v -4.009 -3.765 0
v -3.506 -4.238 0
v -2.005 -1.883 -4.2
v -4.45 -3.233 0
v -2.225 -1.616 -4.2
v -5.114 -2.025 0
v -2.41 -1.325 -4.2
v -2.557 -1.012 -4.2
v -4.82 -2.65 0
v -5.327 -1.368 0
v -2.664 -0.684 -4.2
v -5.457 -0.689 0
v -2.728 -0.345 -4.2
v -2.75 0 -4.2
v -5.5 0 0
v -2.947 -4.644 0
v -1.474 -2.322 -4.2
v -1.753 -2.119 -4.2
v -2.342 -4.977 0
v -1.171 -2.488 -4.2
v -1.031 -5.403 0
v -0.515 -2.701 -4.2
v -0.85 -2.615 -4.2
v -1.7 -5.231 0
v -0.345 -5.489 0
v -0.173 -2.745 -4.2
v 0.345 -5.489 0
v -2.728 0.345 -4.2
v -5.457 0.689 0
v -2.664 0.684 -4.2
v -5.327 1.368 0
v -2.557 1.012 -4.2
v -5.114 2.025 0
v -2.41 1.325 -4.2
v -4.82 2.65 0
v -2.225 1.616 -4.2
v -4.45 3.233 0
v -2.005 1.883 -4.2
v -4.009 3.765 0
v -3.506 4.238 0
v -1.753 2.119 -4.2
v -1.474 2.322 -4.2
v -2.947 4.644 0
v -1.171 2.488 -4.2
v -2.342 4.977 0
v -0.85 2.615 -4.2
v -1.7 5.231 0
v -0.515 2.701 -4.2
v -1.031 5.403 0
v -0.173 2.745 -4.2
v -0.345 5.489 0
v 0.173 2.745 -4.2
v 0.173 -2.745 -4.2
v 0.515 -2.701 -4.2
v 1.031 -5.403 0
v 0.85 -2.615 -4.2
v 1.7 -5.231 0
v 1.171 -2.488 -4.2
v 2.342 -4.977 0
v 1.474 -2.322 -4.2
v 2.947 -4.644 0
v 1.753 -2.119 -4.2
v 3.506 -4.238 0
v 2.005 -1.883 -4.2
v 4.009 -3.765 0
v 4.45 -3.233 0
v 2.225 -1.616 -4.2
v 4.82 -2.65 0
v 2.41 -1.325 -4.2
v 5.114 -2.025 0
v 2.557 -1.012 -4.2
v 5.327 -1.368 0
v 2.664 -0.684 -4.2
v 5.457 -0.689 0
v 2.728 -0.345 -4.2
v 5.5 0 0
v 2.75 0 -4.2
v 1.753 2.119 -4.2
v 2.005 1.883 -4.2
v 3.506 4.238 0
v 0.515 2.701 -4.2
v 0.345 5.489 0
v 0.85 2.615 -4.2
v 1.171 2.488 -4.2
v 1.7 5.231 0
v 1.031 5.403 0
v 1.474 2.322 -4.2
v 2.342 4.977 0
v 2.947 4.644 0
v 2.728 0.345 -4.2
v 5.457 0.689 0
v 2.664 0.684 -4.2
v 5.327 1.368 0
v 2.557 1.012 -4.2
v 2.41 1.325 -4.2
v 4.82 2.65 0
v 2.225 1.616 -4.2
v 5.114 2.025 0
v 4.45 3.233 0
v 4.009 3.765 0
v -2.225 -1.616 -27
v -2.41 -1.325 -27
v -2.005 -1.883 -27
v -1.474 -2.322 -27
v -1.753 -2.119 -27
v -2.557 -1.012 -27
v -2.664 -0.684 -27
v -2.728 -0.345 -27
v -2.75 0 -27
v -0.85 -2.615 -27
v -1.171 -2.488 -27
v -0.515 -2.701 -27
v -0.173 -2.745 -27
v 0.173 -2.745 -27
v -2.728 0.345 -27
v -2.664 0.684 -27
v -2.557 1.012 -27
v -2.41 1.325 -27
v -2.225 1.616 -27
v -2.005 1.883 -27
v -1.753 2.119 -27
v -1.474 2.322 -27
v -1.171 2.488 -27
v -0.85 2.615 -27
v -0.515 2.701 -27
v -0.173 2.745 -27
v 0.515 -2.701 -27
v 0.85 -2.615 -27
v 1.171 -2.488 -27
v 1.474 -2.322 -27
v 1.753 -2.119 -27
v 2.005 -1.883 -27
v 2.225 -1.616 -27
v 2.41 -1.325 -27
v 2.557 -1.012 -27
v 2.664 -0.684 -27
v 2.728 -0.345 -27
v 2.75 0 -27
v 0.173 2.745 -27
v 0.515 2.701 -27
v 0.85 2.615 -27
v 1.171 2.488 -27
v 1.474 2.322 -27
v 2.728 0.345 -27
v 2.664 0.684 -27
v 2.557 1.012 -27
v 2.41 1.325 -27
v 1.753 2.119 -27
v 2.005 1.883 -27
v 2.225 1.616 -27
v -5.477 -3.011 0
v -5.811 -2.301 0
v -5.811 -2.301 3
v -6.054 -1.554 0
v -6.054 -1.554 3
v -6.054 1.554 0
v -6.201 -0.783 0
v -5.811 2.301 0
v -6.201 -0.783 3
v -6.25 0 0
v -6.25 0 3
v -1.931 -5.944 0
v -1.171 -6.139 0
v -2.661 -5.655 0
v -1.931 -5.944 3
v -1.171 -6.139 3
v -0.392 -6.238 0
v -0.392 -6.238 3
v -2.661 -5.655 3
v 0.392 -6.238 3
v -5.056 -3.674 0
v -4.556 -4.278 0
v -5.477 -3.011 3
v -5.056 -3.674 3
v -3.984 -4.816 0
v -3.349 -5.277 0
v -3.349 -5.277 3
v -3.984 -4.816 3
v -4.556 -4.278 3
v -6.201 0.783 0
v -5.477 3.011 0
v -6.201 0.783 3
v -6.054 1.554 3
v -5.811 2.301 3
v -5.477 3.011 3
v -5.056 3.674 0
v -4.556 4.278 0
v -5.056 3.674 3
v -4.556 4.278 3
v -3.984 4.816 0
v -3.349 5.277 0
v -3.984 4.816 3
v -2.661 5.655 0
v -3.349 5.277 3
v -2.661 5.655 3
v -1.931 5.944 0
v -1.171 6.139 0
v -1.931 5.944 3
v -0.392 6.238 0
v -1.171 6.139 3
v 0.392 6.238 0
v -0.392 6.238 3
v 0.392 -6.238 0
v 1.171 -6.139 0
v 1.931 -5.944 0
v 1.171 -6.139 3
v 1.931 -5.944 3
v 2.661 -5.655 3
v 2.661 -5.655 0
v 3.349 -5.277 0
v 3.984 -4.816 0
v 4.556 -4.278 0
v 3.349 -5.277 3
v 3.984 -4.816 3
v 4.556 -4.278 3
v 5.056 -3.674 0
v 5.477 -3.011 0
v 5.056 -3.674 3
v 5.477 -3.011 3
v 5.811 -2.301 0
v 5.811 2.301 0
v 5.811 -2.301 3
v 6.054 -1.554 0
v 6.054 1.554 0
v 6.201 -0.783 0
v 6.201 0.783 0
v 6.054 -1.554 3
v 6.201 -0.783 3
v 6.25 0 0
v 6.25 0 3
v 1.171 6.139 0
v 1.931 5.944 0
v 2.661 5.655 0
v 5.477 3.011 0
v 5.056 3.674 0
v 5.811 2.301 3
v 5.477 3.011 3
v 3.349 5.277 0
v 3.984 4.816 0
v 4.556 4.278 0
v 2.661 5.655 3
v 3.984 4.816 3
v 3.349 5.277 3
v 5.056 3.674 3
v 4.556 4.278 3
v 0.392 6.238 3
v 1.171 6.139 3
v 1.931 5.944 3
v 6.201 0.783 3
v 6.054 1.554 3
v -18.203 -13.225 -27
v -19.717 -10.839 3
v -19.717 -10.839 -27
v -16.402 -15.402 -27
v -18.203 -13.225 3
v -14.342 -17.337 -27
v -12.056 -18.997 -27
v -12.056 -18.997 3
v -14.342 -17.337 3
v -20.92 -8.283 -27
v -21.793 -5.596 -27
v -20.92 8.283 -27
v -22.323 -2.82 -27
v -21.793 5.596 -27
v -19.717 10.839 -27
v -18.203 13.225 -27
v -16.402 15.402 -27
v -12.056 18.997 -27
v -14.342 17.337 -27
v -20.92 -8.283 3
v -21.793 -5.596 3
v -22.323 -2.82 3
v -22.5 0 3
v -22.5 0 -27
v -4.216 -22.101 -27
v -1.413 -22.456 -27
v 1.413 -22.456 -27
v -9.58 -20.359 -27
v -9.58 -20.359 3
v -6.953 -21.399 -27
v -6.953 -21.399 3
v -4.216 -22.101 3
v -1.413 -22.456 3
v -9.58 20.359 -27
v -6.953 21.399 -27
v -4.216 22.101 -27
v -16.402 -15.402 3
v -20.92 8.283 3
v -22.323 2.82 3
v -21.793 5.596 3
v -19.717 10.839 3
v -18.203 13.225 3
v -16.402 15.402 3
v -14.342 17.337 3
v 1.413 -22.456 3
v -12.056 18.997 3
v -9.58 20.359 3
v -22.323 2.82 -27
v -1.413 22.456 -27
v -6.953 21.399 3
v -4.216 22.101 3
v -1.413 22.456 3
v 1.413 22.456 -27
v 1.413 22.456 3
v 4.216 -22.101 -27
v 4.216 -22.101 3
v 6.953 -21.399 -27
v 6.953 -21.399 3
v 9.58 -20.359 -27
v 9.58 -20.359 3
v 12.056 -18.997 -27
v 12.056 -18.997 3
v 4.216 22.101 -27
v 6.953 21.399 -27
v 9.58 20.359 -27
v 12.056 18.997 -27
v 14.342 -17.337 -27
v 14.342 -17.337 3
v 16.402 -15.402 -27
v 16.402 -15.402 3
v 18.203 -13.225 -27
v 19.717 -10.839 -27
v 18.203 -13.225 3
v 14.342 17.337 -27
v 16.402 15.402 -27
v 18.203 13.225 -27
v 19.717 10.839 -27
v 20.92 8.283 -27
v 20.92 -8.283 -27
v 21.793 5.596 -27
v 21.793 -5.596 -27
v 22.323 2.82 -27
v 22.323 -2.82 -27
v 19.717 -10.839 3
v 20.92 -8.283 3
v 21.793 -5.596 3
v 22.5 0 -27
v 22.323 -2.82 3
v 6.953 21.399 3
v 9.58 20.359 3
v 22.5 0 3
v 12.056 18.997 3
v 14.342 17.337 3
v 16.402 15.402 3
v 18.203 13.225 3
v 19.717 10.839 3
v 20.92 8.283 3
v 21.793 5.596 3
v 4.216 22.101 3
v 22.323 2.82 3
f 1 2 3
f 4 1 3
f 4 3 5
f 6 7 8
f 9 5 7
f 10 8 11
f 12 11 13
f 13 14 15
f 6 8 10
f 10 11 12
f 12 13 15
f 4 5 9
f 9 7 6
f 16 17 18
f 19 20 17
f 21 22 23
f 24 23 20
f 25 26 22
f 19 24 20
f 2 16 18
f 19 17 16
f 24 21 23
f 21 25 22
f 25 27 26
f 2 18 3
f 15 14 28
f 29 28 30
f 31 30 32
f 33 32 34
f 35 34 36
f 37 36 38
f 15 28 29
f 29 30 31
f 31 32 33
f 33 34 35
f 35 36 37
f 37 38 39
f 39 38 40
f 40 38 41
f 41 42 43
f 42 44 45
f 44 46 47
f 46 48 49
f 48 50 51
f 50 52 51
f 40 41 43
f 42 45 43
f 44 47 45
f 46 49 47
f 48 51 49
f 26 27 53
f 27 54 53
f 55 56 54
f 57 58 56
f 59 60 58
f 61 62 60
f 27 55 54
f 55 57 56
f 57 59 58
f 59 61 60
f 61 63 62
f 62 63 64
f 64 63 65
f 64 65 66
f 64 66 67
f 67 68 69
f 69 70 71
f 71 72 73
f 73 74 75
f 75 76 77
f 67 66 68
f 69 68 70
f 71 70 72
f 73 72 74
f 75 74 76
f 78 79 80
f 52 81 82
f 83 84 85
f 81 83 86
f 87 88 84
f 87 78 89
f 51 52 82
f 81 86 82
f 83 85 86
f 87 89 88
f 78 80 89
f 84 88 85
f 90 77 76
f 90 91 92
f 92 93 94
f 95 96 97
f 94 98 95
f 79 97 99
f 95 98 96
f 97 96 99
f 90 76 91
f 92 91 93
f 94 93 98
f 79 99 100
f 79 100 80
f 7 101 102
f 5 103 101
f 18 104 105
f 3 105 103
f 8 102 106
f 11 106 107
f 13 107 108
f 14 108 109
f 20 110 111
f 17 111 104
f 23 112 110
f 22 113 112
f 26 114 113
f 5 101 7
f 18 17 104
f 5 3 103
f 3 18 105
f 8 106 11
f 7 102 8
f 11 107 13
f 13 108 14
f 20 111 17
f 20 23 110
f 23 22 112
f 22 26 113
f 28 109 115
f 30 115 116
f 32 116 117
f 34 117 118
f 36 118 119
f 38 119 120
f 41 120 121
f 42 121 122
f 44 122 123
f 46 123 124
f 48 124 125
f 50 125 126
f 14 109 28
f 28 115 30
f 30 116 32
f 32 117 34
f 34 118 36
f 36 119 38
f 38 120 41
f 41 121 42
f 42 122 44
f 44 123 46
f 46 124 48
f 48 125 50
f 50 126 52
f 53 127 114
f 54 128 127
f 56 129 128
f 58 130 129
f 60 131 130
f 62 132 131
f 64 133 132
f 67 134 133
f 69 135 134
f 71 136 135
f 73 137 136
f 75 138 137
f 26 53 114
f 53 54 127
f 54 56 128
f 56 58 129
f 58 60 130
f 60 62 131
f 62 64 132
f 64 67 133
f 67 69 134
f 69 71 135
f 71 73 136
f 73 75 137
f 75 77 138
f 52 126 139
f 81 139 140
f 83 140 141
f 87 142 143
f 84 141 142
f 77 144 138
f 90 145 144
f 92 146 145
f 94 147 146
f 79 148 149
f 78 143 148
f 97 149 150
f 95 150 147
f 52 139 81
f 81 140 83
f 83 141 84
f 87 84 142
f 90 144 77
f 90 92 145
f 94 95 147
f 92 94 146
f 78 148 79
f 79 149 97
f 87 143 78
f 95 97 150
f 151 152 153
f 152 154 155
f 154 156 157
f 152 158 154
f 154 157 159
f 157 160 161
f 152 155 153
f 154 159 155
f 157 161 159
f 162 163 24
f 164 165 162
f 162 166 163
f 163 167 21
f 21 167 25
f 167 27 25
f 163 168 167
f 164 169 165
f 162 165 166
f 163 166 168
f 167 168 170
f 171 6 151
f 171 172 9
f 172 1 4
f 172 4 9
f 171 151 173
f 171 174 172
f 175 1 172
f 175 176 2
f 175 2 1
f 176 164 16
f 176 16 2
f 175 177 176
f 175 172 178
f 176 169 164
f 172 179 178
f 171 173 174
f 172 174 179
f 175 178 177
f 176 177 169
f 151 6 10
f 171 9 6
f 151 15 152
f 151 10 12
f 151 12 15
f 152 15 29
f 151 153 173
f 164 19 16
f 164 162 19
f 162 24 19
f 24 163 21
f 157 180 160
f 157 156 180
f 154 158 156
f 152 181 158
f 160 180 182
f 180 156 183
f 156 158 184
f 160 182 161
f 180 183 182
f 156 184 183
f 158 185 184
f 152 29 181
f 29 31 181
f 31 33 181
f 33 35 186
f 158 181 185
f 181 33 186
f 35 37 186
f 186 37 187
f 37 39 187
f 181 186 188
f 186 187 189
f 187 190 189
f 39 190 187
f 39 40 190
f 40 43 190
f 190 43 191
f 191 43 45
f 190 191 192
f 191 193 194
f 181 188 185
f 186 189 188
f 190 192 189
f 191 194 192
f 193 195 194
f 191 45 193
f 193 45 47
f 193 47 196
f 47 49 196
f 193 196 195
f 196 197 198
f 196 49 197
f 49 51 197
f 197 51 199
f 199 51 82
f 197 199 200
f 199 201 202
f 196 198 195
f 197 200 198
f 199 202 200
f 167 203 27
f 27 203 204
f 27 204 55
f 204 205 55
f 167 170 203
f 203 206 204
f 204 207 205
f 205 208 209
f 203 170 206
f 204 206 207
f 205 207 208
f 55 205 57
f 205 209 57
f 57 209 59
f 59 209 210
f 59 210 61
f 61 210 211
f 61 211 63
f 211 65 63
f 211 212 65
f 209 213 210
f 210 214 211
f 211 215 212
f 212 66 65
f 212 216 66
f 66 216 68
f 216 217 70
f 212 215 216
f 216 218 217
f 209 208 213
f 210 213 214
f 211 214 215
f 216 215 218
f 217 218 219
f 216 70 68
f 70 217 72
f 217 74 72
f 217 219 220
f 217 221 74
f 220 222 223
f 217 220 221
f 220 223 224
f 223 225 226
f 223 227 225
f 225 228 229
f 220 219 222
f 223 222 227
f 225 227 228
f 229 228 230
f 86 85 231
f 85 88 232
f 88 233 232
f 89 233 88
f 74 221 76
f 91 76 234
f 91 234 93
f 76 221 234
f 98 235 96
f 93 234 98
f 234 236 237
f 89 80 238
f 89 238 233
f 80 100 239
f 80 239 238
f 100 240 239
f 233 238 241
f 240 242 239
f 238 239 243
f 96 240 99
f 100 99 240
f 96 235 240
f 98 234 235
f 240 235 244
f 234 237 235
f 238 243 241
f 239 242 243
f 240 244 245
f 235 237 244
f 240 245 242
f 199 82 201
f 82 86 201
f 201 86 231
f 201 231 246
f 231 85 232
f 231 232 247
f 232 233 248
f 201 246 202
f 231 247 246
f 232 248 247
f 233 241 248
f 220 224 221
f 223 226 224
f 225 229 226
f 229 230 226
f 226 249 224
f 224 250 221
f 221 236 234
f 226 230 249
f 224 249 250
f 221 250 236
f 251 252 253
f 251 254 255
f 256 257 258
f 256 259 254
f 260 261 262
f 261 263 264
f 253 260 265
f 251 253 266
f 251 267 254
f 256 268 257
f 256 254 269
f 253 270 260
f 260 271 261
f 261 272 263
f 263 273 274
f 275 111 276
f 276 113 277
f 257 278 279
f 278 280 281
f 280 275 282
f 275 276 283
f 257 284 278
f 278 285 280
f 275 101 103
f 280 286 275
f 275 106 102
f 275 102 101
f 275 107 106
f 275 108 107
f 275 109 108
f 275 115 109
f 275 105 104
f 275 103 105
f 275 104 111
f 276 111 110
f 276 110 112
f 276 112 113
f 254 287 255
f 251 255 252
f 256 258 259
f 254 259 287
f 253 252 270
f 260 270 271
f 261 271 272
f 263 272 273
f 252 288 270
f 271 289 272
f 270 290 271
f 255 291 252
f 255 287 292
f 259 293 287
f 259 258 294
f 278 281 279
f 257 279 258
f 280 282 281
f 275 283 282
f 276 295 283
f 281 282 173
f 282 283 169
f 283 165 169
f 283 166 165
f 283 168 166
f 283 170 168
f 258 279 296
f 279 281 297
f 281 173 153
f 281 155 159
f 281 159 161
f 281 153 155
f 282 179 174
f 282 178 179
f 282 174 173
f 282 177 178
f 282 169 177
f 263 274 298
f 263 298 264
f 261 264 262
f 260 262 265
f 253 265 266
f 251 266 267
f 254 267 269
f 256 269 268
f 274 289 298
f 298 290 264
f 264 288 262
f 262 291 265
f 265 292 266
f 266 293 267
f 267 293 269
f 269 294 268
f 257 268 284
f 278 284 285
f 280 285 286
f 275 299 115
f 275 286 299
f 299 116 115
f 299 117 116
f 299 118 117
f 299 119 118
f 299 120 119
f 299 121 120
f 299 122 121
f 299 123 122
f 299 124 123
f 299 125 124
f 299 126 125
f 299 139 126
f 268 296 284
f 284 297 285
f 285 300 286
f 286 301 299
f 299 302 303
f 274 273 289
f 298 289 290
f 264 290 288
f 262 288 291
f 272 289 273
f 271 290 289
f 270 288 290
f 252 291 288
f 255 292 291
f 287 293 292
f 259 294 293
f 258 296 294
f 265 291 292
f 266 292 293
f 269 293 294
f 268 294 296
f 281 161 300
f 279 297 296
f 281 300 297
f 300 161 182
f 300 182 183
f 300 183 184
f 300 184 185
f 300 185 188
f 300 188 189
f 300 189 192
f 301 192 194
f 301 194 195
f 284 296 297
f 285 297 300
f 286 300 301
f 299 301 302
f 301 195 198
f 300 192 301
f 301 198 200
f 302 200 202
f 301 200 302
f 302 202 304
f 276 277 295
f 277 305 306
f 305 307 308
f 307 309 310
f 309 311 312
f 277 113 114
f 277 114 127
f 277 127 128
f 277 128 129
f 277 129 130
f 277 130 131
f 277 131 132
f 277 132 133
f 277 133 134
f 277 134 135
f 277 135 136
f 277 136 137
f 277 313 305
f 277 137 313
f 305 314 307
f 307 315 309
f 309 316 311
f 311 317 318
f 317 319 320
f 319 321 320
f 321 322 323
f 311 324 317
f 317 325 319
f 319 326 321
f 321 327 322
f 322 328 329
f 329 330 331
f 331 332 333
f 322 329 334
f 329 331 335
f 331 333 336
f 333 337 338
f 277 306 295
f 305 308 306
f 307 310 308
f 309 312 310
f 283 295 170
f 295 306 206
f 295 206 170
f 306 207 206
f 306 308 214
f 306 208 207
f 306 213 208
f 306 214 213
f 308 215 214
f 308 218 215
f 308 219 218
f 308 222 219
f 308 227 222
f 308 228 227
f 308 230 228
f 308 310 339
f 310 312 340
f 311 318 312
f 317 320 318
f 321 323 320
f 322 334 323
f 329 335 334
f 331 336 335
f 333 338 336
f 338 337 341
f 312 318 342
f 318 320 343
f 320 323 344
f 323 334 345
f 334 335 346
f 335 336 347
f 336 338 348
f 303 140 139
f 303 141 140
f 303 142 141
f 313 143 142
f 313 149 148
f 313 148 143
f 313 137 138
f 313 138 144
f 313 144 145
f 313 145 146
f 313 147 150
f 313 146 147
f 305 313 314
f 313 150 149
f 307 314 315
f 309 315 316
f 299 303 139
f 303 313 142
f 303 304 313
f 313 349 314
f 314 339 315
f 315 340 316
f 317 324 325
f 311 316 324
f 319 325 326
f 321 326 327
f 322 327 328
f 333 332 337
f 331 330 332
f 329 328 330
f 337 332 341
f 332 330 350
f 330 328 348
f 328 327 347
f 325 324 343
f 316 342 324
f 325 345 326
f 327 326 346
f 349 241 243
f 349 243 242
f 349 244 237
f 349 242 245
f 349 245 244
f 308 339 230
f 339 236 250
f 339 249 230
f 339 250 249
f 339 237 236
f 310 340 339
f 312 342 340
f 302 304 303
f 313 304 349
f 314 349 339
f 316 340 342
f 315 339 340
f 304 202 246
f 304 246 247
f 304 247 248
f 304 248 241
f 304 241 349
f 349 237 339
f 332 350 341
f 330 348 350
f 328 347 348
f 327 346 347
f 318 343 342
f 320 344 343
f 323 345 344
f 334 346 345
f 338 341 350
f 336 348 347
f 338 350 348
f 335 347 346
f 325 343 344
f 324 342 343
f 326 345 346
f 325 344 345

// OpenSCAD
$fn = 50;

difference() {
	union() {
		translate(v = [0, 0, -27.0]) {
			cylinder(h = 30, r = 22.5);
		}
	}
	union() {
		translate(v = [0, 0, 0]) {
			rotate(a = [0, 0, 0]) {
				difference() {
					union() {
						translate(v = [0, 0, -30.0]) {
							cylinder(h = 30, r = 2.25);
						}
						translate(v = [0, 0, -4.2]) {
							cylinder(h = 4.2, r1 = 2.75, r2 = 5.5);
						}
						translate(v = [0, 0, -30.0]) {
							cylinder(h = 30, r = 2.75);
						}
						translate(v = [0, 0, -30.0]) {
							cylinder(h = 30, r = 2.25);
						}
					}
					union();
				}
			}
		}
		#cylinder(h = 3, r = 6.25);
	}
}
